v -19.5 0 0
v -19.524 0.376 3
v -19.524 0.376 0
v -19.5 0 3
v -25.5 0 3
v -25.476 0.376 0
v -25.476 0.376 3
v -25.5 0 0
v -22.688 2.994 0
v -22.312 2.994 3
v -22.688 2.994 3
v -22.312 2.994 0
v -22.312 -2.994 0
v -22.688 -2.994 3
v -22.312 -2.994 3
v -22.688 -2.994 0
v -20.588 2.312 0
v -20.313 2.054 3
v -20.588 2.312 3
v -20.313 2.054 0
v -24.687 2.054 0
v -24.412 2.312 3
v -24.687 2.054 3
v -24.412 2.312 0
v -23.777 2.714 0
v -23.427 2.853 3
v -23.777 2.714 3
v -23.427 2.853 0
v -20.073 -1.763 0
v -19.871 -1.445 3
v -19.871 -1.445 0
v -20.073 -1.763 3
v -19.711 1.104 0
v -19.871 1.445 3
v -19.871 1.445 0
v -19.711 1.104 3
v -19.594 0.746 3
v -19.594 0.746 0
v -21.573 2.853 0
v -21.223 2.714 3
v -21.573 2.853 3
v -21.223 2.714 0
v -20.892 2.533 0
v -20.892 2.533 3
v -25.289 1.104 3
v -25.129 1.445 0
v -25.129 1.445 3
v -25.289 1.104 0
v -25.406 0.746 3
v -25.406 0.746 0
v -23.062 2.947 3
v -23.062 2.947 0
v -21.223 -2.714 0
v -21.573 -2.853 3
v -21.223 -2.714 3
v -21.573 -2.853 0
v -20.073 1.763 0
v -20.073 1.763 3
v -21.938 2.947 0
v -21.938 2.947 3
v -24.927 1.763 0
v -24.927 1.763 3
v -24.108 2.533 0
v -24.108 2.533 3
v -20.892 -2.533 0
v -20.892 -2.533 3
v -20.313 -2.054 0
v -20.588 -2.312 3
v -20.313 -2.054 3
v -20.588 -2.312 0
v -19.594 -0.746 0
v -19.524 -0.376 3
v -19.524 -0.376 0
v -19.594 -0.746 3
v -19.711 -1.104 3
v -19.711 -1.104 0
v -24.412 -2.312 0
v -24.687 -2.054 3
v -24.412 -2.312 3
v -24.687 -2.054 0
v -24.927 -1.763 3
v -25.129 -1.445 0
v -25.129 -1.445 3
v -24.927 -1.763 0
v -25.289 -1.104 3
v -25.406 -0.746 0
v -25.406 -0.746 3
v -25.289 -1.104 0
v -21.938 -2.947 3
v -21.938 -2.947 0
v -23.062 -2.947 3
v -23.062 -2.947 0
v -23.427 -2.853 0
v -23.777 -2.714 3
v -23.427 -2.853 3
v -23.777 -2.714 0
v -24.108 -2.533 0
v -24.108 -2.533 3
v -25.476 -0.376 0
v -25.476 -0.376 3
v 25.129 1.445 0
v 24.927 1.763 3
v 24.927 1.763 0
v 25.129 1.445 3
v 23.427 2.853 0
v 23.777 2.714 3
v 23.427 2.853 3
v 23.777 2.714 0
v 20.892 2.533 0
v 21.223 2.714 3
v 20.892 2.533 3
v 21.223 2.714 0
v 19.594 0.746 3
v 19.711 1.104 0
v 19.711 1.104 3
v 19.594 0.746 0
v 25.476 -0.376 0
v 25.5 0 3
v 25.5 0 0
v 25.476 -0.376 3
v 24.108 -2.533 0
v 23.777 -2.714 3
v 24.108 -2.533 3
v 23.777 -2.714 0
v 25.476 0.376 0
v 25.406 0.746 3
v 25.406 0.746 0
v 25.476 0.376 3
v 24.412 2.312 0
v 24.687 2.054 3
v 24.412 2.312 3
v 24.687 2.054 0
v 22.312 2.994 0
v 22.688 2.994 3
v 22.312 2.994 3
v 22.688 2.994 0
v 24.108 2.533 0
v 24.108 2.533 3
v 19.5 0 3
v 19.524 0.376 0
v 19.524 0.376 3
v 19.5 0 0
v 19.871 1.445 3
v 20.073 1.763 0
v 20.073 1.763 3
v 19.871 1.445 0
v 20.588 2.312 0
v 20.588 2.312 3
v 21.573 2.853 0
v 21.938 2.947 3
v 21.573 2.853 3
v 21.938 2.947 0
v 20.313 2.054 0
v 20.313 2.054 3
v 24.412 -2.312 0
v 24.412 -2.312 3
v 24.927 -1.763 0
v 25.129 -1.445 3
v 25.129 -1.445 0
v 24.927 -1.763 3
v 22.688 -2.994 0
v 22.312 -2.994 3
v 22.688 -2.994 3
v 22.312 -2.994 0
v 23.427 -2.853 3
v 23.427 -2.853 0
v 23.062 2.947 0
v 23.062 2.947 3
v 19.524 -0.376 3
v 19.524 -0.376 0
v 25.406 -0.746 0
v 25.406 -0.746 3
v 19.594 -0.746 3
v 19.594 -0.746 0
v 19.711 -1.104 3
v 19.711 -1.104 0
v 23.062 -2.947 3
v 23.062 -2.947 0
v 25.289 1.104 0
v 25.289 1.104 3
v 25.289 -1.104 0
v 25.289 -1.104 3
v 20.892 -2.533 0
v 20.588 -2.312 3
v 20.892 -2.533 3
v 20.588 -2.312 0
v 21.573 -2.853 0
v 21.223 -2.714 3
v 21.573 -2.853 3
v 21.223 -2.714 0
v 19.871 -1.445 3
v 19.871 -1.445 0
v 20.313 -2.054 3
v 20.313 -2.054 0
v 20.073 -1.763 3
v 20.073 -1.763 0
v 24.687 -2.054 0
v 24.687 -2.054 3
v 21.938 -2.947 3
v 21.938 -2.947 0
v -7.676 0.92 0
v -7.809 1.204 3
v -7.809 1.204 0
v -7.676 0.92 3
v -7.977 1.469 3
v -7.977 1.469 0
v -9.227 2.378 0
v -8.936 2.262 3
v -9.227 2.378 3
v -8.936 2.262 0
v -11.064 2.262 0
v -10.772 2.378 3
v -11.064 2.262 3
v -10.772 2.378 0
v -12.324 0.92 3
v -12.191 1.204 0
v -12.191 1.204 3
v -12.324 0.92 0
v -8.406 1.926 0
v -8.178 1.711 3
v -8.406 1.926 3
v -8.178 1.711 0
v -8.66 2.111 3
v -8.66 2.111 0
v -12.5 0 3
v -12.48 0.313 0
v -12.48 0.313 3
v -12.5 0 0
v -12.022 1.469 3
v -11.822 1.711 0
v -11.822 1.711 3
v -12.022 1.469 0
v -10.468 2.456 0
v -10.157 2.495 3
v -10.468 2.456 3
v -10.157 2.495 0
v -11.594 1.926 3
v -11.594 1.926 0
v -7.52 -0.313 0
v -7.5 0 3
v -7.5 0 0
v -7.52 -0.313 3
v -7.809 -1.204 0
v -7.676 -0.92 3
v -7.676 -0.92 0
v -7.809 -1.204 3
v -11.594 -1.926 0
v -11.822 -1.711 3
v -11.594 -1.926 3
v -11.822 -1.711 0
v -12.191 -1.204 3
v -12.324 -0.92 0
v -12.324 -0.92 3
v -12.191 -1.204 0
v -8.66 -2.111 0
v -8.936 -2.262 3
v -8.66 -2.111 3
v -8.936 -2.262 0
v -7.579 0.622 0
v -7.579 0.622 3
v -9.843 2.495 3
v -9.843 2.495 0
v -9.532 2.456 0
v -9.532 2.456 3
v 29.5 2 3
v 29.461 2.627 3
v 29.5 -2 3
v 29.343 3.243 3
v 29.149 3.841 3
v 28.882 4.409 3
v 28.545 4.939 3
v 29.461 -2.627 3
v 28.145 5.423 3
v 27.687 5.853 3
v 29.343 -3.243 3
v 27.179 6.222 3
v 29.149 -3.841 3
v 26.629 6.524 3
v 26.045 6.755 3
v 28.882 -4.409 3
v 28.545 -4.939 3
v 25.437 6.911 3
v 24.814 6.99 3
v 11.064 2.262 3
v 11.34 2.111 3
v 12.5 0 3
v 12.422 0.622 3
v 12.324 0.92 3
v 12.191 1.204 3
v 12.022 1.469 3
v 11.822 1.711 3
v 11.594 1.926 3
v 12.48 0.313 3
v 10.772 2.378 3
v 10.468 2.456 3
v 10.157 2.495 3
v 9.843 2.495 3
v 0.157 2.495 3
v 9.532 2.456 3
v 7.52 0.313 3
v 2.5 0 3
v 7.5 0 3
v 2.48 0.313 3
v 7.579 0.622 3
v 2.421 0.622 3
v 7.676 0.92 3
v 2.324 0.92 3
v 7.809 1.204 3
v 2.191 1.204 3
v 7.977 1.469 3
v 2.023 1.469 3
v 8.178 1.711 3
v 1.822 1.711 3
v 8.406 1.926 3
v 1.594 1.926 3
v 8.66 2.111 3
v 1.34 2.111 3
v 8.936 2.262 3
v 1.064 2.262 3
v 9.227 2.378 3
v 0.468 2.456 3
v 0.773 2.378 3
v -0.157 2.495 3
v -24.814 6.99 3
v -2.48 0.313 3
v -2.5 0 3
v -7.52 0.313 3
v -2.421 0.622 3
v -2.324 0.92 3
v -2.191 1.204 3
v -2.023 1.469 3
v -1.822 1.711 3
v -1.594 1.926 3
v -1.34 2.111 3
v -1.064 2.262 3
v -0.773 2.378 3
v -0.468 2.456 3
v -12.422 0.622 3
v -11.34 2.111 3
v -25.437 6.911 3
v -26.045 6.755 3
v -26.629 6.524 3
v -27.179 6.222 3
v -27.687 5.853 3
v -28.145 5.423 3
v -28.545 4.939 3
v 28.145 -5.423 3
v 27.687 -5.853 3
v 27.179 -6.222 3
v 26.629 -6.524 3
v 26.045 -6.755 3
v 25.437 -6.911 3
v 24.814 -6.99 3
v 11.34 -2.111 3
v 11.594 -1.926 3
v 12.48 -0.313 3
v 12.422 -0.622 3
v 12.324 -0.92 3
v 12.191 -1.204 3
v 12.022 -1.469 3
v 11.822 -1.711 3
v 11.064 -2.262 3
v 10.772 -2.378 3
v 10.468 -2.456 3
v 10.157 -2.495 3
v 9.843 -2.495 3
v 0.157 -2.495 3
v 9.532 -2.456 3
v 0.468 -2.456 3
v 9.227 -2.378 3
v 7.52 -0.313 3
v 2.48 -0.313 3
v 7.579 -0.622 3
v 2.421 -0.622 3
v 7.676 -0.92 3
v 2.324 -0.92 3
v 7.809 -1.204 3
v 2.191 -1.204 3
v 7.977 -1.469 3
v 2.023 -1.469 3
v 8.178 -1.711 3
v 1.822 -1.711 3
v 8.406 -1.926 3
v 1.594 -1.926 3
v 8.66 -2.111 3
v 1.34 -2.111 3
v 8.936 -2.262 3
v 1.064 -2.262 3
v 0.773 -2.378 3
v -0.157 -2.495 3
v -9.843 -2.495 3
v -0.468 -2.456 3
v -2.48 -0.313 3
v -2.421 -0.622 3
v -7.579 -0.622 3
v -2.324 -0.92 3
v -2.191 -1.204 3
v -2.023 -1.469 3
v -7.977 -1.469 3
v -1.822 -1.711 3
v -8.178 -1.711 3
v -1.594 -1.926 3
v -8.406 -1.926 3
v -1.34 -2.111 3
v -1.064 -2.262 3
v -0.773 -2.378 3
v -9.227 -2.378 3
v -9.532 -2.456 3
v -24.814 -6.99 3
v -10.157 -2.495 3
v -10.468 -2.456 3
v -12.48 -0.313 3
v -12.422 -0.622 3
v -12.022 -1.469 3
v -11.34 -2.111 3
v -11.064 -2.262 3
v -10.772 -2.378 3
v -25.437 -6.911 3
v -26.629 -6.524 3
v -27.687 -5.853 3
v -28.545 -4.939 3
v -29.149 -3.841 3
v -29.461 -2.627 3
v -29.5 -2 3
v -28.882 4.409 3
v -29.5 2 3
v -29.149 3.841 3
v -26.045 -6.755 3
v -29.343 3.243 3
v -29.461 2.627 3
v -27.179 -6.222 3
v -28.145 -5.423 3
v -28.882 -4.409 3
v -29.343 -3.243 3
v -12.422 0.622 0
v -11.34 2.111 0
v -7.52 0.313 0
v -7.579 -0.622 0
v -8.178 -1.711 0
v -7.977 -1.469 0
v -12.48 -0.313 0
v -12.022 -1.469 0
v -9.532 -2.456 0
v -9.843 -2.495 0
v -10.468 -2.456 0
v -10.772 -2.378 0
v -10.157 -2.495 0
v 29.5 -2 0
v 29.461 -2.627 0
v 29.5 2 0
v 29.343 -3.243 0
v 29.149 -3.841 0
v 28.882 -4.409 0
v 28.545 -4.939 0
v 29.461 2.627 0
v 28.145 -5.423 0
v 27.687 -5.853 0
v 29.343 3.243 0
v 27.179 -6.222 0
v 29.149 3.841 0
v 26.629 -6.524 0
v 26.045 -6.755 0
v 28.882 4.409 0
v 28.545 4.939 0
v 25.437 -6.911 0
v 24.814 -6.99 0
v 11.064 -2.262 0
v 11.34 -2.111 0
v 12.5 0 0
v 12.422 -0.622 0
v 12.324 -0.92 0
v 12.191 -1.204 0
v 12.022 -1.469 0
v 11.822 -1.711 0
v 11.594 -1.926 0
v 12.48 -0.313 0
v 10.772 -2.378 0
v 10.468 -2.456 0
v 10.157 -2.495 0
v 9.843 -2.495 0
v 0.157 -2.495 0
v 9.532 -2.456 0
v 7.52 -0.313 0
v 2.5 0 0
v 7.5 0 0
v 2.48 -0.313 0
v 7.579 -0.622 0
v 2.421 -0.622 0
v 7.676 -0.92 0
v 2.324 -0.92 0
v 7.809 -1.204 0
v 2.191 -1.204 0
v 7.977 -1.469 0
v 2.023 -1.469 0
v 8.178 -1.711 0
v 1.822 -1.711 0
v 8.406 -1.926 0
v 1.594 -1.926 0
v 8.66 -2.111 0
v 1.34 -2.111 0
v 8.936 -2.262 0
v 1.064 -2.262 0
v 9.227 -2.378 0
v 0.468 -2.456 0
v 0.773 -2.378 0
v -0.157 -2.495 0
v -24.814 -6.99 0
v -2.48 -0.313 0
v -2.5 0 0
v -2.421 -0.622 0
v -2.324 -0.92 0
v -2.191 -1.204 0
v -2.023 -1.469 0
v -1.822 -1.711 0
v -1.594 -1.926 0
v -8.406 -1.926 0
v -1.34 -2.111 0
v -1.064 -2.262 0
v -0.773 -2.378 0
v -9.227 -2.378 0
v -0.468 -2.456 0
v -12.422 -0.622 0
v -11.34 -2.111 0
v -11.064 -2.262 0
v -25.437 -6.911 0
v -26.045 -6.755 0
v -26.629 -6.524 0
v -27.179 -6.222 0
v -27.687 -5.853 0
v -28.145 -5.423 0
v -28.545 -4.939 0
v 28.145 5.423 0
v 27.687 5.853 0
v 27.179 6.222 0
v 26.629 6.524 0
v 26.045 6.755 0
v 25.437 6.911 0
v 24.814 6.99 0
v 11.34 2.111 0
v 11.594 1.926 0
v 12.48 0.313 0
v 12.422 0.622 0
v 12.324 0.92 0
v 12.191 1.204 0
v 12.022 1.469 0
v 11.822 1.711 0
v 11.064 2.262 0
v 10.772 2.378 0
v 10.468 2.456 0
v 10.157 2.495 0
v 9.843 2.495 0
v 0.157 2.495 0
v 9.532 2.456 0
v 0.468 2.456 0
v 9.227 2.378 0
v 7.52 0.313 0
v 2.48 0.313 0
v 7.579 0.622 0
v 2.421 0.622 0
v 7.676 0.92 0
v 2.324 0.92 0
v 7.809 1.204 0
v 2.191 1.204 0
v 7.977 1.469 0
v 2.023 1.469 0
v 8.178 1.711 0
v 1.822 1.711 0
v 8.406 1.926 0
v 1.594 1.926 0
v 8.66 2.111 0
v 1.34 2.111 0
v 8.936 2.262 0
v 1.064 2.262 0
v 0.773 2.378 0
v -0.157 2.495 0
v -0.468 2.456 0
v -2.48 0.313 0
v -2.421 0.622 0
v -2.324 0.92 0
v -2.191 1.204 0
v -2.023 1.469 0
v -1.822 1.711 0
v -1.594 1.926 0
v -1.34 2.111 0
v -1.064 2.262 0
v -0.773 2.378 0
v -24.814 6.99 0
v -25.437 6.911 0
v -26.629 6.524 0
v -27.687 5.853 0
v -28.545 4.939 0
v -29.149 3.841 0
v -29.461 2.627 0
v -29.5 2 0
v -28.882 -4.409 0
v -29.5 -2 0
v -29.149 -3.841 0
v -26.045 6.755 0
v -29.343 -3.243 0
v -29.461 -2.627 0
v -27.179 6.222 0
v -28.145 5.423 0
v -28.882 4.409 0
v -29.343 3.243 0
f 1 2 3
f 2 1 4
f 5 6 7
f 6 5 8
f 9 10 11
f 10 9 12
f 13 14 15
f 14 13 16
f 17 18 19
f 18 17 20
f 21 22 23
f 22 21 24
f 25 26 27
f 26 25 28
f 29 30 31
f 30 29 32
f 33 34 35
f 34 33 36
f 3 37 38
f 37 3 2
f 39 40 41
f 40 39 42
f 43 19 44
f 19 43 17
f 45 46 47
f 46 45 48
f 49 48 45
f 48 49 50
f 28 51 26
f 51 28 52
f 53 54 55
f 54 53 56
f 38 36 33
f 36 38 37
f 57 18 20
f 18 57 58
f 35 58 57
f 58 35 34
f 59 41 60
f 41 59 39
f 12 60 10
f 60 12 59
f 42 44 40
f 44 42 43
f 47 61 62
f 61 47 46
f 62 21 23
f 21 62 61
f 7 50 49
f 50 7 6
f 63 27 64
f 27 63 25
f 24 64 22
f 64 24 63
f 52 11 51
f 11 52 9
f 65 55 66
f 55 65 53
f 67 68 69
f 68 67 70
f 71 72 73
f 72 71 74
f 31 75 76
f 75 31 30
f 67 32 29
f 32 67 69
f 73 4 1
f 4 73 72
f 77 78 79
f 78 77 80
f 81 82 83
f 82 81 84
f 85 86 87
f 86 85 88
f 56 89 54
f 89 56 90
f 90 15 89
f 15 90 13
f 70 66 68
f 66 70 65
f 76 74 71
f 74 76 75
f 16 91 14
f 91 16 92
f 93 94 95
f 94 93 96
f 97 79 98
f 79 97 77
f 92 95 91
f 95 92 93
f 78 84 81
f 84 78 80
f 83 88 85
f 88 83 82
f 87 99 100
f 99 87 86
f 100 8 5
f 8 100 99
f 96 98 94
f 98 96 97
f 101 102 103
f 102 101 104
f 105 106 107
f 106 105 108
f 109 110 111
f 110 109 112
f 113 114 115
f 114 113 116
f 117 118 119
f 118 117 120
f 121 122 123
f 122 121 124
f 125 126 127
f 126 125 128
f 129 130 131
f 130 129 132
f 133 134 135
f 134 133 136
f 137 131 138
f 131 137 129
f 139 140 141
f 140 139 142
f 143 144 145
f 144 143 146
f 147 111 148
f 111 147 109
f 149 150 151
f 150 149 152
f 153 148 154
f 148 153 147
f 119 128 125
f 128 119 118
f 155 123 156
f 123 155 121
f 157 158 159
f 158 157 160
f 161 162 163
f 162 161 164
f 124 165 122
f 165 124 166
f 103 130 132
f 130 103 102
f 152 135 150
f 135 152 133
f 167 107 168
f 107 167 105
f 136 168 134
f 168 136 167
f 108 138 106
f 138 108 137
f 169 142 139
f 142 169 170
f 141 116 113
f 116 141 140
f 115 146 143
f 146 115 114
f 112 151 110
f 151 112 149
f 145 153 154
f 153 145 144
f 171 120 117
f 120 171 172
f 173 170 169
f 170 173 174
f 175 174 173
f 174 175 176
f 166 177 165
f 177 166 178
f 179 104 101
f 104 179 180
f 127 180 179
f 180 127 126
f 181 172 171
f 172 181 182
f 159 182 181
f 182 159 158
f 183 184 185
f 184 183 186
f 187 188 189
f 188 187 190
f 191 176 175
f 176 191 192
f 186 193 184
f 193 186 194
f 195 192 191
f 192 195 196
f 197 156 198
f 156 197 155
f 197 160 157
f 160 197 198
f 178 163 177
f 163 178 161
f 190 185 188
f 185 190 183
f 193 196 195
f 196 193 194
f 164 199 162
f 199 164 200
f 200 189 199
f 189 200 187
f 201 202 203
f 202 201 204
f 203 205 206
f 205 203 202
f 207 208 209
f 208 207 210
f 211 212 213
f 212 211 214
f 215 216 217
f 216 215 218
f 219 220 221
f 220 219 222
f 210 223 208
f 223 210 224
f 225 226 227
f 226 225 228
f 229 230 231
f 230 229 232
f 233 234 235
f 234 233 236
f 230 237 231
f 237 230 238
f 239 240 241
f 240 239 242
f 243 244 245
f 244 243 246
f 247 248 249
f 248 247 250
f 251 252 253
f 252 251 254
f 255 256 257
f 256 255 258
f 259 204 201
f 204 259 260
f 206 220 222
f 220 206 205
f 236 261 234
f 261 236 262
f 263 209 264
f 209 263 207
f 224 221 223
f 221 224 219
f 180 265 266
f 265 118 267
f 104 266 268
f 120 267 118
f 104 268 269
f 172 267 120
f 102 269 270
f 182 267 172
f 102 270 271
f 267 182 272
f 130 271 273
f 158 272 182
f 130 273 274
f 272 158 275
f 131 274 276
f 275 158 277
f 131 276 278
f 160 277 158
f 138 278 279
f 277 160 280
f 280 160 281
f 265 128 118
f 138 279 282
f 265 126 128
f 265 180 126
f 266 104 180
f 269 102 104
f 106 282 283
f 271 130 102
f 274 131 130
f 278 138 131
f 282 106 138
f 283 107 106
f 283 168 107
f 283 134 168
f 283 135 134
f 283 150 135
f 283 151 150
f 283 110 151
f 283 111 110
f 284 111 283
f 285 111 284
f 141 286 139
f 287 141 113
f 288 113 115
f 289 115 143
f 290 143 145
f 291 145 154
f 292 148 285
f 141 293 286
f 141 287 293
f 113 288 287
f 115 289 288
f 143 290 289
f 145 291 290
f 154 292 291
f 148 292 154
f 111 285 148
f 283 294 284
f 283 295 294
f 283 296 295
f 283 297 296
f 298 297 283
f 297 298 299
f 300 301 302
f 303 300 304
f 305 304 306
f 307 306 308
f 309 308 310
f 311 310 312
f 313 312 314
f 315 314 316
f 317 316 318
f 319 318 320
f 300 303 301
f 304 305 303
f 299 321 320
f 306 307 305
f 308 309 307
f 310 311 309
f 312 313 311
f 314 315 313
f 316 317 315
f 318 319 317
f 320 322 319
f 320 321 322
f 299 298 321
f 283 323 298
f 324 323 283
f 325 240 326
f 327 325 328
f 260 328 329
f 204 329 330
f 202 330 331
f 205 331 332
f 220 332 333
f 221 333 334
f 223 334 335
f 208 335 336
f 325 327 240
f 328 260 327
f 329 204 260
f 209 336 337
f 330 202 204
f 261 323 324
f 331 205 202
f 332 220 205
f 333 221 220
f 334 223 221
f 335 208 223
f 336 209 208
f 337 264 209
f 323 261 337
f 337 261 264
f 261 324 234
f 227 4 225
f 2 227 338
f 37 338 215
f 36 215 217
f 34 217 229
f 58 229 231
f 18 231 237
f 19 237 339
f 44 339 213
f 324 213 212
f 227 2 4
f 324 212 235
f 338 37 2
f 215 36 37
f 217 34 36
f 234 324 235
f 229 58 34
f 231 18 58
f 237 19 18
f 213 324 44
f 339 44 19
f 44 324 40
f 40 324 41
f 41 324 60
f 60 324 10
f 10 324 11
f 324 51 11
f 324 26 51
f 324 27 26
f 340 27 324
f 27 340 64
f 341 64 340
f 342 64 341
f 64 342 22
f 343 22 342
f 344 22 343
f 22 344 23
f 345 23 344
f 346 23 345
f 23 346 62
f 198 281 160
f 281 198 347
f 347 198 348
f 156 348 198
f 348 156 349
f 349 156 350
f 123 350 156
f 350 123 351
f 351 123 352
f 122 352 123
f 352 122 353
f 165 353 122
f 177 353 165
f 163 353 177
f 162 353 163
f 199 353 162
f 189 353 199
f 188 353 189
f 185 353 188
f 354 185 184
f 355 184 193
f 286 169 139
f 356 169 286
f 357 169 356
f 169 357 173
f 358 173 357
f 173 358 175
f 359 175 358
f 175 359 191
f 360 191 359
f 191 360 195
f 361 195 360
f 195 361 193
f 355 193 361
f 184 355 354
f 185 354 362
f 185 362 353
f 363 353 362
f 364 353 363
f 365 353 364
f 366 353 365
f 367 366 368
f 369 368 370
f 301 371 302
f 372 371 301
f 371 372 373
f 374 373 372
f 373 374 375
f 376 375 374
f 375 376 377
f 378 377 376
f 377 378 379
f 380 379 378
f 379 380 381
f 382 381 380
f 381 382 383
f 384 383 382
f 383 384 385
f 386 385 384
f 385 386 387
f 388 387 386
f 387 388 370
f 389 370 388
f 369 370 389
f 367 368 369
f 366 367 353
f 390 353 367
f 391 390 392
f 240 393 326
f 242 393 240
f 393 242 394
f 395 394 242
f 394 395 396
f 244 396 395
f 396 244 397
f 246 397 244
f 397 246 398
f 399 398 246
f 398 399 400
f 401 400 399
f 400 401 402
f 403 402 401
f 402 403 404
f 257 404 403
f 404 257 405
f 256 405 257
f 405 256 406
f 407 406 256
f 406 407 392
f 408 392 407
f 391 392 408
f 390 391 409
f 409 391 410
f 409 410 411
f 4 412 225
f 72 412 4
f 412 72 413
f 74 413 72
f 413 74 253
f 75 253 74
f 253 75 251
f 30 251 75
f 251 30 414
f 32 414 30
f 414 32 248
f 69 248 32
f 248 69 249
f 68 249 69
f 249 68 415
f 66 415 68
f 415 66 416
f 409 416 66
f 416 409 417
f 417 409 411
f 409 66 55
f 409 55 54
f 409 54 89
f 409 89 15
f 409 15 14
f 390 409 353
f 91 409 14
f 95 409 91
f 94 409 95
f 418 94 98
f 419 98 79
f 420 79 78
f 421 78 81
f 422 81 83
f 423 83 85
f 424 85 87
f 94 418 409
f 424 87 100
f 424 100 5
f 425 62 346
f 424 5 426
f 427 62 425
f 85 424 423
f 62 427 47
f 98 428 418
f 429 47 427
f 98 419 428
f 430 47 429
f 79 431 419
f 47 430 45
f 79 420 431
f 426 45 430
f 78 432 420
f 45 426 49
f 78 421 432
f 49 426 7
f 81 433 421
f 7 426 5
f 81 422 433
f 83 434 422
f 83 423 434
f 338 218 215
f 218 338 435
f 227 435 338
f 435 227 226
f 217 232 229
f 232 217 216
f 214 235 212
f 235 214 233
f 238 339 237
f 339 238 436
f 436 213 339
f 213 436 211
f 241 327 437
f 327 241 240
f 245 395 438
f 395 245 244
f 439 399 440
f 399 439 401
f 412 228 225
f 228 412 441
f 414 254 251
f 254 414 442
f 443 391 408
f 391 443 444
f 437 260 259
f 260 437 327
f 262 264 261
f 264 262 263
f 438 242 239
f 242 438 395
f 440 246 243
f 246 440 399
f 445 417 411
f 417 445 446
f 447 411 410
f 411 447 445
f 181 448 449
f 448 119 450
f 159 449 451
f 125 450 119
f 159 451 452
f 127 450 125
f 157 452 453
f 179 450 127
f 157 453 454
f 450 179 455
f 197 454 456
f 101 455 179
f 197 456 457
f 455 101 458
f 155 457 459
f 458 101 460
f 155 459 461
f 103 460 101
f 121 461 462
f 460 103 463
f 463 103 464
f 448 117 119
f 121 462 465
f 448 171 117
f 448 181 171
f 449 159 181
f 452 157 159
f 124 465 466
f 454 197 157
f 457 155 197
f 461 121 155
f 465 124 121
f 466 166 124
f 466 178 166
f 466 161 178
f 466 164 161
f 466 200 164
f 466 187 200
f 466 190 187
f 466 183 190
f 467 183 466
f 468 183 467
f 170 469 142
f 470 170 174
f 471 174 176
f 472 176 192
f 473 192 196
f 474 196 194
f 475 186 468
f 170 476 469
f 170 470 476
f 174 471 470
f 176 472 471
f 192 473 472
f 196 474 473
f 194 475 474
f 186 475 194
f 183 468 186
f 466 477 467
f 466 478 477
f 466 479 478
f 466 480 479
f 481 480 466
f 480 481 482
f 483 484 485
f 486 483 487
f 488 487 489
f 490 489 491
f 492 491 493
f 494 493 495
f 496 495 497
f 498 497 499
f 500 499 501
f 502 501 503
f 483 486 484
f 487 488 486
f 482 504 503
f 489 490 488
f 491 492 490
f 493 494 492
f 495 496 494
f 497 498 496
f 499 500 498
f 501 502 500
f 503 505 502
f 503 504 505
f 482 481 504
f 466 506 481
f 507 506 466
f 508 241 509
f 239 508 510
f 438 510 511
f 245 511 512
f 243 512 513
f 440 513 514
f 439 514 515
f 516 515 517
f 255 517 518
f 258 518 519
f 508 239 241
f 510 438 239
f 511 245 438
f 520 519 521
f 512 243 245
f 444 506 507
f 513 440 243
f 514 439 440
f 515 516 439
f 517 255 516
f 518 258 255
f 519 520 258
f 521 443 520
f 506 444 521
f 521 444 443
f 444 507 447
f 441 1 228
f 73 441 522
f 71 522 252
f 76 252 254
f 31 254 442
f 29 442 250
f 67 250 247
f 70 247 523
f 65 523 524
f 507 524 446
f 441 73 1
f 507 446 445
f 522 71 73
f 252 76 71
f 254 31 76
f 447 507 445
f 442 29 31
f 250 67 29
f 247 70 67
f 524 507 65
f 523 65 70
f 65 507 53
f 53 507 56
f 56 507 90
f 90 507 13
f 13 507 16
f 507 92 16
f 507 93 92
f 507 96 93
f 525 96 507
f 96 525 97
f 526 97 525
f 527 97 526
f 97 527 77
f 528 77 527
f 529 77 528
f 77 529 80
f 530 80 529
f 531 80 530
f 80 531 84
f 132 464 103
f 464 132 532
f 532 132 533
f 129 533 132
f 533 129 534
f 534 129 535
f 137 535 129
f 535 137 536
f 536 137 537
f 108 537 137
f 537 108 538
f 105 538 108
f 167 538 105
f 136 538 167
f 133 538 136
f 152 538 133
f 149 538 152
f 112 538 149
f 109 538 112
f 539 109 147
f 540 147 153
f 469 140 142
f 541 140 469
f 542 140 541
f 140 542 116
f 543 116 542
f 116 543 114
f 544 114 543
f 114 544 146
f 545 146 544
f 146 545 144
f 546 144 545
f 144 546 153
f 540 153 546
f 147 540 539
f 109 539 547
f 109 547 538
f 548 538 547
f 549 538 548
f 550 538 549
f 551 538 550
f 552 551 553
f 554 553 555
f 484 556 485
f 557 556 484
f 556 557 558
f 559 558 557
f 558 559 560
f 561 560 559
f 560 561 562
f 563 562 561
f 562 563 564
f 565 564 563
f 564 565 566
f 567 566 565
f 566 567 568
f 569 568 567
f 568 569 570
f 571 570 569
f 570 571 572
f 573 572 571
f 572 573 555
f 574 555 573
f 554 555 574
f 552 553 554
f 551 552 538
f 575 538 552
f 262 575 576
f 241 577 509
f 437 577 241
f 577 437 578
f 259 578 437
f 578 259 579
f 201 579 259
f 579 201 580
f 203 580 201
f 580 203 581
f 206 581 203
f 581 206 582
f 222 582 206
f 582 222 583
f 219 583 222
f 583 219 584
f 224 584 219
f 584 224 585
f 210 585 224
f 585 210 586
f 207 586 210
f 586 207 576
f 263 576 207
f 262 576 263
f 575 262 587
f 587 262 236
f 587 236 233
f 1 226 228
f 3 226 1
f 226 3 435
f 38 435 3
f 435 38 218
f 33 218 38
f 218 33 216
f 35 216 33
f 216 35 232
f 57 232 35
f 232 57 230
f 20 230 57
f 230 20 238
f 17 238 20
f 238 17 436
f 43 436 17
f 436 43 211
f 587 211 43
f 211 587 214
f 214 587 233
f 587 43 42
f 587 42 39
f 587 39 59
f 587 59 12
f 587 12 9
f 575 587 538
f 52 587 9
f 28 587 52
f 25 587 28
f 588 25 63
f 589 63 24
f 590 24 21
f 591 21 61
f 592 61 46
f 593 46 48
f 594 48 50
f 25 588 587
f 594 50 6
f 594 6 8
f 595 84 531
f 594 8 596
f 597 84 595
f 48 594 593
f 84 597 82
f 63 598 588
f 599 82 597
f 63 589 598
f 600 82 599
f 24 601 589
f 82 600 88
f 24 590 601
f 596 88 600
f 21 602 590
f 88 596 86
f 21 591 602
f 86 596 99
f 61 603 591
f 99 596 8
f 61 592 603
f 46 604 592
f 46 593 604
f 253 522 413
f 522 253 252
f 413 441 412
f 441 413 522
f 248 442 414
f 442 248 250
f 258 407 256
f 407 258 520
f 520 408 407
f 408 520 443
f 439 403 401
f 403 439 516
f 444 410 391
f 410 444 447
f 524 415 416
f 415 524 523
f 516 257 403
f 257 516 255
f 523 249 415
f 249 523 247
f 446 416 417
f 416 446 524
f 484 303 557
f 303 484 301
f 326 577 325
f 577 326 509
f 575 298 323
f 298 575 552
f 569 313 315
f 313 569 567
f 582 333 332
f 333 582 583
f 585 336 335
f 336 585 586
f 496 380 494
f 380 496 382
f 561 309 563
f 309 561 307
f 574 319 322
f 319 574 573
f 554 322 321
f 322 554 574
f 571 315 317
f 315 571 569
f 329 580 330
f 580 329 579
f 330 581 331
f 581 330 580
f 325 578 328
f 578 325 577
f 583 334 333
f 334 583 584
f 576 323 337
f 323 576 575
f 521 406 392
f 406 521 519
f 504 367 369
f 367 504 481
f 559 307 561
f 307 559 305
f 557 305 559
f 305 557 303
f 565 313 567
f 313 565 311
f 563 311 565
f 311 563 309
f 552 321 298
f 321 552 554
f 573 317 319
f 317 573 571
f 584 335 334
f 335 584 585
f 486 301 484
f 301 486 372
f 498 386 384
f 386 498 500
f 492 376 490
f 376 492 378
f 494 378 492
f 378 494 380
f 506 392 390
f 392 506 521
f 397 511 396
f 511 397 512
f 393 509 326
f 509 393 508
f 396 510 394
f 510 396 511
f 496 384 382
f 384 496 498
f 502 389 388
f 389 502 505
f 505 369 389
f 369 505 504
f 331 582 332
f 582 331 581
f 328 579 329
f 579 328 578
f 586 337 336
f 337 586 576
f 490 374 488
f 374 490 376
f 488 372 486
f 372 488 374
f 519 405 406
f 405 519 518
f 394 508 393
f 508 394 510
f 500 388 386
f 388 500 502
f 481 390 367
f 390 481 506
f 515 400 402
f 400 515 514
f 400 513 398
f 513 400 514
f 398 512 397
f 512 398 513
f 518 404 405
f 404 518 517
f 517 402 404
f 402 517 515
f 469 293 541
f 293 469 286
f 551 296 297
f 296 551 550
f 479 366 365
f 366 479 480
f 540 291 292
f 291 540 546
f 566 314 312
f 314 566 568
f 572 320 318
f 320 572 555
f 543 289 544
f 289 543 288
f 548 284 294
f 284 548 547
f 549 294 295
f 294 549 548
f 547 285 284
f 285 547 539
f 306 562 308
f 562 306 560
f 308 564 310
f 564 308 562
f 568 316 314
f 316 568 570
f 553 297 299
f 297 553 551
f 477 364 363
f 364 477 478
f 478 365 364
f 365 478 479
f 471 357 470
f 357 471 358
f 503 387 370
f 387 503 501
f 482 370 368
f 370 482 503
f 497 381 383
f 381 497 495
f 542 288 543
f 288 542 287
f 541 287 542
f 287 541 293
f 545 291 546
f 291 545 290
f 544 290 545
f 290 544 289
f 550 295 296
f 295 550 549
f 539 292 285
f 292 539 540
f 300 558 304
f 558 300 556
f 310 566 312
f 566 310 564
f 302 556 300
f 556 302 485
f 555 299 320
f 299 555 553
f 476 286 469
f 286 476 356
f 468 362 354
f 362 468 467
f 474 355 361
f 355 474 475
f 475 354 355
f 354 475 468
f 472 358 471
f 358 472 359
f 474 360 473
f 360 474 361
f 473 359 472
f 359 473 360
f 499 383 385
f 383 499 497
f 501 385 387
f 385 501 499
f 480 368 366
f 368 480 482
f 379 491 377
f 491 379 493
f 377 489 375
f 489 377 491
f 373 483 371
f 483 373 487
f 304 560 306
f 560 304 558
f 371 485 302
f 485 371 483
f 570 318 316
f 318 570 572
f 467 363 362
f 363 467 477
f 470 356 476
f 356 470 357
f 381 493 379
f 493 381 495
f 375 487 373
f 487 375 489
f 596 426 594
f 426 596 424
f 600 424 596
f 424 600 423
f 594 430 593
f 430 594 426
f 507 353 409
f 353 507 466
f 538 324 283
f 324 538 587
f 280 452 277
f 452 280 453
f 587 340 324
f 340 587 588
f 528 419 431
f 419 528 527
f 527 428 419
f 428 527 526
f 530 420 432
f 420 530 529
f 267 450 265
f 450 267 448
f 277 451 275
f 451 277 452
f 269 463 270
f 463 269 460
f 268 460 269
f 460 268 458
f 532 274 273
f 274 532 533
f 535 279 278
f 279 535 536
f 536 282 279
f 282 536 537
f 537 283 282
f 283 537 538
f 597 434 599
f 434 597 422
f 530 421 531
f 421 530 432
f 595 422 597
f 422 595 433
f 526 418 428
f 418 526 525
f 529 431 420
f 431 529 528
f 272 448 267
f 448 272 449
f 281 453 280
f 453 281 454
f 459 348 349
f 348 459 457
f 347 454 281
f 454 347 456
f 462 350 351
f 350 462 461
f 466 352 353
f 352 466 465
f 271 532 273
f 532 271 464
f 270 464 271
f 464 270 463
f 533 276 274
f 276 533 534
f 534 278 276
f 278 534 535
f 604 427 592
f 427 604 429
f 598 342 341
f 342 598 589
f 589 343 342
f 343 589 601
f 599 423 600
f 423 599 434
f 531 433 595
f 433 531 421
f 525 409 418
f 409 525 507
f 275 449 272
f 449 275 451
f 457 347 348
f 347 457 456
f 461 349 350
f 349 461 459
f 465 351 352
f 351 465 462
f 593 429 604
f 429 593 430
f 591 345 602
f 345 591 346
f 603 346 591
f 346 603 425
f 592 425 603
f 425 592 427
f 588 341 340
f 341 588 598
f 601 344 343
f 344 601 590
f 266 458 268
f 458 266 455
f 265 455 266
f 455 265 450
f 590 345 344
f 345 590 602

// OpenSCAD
$fn = 50;


difference() {
	union() {
		hull() {
			translate(v = [-24.5000000000, 2.0000000000, 0]) {
				cylinder(h = 3, r = 5);
			}
			translate(v = [24.5000000000, 2.0000000000, 0]) {
				cylinder(h = 3, r = 5);
			}
			translate(v = [-24.5000000000, -2.0000000000, 0]) {
				cylinder(h = 3, r = 5);
			}
			translate(v = [24.5000000000, -2.0000000000, 0]) {
				cylinder(h = 3, r = 5);
			}
		}
	}
	union() {
		#translate(v = [-22.5000000000, 0.0000000000, 0]) {
			cylinder(h = 3, r = 3.0000000000);
		}
		#translate(v = [22.5000000000, 0.0000000000, 0]) {
			cylinder(h = 3, r = 3.0000000000);
		}
		#translate(v = [-22.5000000000, 0.0000000000, -100.0000000000]) {
			cylinder(h = 200, r = 3.0000000000);
		}
		#translate(v = [-22.5000000000, 0.0000000000, -100.0000000000]) {
			cylinder(h = 200, r = 3.0000000000);
		}
		#translate(v = [22.5000000000, 0.0000000000, -100.0000000000]) {
			cylinder(h = 200, r = 3.0000000000);
		}
		#translate(v = [22.5000000000, 0.0000000000, -100.0000000000]) {
			cylinder(h = 200, r = 3.0000000000);
		}
		#translate(v = [-22.5000000000, 0.0000000000, 0]) {
			cylinder(h = 3, r = 1.5000000000);
		}
		#translate(v = [22.5000000000, 0.0000000000, 0]) {
			cylinder(h = 3, r = 1.5000000000);
		}
		#translate(v = [-22.5000000000, 0.0000000000, 0]) {
			cylinder(h = 3, r = 1.5000000000);
		}
		#translate(v = [22.5000000000, 0.0000000000, 0]) {
			cylinder(h = 3, r = 1.5000000000);
		}
		#translate(v = [-22.5000000000, 0.0000000000, 0]) {
			cylinder(h = 3, r = 1.5000000000);
		}
		#translate(v = [22.5000000000, 0.0000000000, 0]) {
			cylinder(h = 3, r = 1.5000000000);
		}
		#translate(v = [-10.0000000000, 0, 0]) {
			cylinder(h = 3, r = 2.5000000000);
		}
		#cylinder(h = 3, r = 2.5000000000);
		#translate(v = [10.0000000000, 0, 0]) {
			cylinder(h = 3, r = 2.5000000000);
		}
	}
}
